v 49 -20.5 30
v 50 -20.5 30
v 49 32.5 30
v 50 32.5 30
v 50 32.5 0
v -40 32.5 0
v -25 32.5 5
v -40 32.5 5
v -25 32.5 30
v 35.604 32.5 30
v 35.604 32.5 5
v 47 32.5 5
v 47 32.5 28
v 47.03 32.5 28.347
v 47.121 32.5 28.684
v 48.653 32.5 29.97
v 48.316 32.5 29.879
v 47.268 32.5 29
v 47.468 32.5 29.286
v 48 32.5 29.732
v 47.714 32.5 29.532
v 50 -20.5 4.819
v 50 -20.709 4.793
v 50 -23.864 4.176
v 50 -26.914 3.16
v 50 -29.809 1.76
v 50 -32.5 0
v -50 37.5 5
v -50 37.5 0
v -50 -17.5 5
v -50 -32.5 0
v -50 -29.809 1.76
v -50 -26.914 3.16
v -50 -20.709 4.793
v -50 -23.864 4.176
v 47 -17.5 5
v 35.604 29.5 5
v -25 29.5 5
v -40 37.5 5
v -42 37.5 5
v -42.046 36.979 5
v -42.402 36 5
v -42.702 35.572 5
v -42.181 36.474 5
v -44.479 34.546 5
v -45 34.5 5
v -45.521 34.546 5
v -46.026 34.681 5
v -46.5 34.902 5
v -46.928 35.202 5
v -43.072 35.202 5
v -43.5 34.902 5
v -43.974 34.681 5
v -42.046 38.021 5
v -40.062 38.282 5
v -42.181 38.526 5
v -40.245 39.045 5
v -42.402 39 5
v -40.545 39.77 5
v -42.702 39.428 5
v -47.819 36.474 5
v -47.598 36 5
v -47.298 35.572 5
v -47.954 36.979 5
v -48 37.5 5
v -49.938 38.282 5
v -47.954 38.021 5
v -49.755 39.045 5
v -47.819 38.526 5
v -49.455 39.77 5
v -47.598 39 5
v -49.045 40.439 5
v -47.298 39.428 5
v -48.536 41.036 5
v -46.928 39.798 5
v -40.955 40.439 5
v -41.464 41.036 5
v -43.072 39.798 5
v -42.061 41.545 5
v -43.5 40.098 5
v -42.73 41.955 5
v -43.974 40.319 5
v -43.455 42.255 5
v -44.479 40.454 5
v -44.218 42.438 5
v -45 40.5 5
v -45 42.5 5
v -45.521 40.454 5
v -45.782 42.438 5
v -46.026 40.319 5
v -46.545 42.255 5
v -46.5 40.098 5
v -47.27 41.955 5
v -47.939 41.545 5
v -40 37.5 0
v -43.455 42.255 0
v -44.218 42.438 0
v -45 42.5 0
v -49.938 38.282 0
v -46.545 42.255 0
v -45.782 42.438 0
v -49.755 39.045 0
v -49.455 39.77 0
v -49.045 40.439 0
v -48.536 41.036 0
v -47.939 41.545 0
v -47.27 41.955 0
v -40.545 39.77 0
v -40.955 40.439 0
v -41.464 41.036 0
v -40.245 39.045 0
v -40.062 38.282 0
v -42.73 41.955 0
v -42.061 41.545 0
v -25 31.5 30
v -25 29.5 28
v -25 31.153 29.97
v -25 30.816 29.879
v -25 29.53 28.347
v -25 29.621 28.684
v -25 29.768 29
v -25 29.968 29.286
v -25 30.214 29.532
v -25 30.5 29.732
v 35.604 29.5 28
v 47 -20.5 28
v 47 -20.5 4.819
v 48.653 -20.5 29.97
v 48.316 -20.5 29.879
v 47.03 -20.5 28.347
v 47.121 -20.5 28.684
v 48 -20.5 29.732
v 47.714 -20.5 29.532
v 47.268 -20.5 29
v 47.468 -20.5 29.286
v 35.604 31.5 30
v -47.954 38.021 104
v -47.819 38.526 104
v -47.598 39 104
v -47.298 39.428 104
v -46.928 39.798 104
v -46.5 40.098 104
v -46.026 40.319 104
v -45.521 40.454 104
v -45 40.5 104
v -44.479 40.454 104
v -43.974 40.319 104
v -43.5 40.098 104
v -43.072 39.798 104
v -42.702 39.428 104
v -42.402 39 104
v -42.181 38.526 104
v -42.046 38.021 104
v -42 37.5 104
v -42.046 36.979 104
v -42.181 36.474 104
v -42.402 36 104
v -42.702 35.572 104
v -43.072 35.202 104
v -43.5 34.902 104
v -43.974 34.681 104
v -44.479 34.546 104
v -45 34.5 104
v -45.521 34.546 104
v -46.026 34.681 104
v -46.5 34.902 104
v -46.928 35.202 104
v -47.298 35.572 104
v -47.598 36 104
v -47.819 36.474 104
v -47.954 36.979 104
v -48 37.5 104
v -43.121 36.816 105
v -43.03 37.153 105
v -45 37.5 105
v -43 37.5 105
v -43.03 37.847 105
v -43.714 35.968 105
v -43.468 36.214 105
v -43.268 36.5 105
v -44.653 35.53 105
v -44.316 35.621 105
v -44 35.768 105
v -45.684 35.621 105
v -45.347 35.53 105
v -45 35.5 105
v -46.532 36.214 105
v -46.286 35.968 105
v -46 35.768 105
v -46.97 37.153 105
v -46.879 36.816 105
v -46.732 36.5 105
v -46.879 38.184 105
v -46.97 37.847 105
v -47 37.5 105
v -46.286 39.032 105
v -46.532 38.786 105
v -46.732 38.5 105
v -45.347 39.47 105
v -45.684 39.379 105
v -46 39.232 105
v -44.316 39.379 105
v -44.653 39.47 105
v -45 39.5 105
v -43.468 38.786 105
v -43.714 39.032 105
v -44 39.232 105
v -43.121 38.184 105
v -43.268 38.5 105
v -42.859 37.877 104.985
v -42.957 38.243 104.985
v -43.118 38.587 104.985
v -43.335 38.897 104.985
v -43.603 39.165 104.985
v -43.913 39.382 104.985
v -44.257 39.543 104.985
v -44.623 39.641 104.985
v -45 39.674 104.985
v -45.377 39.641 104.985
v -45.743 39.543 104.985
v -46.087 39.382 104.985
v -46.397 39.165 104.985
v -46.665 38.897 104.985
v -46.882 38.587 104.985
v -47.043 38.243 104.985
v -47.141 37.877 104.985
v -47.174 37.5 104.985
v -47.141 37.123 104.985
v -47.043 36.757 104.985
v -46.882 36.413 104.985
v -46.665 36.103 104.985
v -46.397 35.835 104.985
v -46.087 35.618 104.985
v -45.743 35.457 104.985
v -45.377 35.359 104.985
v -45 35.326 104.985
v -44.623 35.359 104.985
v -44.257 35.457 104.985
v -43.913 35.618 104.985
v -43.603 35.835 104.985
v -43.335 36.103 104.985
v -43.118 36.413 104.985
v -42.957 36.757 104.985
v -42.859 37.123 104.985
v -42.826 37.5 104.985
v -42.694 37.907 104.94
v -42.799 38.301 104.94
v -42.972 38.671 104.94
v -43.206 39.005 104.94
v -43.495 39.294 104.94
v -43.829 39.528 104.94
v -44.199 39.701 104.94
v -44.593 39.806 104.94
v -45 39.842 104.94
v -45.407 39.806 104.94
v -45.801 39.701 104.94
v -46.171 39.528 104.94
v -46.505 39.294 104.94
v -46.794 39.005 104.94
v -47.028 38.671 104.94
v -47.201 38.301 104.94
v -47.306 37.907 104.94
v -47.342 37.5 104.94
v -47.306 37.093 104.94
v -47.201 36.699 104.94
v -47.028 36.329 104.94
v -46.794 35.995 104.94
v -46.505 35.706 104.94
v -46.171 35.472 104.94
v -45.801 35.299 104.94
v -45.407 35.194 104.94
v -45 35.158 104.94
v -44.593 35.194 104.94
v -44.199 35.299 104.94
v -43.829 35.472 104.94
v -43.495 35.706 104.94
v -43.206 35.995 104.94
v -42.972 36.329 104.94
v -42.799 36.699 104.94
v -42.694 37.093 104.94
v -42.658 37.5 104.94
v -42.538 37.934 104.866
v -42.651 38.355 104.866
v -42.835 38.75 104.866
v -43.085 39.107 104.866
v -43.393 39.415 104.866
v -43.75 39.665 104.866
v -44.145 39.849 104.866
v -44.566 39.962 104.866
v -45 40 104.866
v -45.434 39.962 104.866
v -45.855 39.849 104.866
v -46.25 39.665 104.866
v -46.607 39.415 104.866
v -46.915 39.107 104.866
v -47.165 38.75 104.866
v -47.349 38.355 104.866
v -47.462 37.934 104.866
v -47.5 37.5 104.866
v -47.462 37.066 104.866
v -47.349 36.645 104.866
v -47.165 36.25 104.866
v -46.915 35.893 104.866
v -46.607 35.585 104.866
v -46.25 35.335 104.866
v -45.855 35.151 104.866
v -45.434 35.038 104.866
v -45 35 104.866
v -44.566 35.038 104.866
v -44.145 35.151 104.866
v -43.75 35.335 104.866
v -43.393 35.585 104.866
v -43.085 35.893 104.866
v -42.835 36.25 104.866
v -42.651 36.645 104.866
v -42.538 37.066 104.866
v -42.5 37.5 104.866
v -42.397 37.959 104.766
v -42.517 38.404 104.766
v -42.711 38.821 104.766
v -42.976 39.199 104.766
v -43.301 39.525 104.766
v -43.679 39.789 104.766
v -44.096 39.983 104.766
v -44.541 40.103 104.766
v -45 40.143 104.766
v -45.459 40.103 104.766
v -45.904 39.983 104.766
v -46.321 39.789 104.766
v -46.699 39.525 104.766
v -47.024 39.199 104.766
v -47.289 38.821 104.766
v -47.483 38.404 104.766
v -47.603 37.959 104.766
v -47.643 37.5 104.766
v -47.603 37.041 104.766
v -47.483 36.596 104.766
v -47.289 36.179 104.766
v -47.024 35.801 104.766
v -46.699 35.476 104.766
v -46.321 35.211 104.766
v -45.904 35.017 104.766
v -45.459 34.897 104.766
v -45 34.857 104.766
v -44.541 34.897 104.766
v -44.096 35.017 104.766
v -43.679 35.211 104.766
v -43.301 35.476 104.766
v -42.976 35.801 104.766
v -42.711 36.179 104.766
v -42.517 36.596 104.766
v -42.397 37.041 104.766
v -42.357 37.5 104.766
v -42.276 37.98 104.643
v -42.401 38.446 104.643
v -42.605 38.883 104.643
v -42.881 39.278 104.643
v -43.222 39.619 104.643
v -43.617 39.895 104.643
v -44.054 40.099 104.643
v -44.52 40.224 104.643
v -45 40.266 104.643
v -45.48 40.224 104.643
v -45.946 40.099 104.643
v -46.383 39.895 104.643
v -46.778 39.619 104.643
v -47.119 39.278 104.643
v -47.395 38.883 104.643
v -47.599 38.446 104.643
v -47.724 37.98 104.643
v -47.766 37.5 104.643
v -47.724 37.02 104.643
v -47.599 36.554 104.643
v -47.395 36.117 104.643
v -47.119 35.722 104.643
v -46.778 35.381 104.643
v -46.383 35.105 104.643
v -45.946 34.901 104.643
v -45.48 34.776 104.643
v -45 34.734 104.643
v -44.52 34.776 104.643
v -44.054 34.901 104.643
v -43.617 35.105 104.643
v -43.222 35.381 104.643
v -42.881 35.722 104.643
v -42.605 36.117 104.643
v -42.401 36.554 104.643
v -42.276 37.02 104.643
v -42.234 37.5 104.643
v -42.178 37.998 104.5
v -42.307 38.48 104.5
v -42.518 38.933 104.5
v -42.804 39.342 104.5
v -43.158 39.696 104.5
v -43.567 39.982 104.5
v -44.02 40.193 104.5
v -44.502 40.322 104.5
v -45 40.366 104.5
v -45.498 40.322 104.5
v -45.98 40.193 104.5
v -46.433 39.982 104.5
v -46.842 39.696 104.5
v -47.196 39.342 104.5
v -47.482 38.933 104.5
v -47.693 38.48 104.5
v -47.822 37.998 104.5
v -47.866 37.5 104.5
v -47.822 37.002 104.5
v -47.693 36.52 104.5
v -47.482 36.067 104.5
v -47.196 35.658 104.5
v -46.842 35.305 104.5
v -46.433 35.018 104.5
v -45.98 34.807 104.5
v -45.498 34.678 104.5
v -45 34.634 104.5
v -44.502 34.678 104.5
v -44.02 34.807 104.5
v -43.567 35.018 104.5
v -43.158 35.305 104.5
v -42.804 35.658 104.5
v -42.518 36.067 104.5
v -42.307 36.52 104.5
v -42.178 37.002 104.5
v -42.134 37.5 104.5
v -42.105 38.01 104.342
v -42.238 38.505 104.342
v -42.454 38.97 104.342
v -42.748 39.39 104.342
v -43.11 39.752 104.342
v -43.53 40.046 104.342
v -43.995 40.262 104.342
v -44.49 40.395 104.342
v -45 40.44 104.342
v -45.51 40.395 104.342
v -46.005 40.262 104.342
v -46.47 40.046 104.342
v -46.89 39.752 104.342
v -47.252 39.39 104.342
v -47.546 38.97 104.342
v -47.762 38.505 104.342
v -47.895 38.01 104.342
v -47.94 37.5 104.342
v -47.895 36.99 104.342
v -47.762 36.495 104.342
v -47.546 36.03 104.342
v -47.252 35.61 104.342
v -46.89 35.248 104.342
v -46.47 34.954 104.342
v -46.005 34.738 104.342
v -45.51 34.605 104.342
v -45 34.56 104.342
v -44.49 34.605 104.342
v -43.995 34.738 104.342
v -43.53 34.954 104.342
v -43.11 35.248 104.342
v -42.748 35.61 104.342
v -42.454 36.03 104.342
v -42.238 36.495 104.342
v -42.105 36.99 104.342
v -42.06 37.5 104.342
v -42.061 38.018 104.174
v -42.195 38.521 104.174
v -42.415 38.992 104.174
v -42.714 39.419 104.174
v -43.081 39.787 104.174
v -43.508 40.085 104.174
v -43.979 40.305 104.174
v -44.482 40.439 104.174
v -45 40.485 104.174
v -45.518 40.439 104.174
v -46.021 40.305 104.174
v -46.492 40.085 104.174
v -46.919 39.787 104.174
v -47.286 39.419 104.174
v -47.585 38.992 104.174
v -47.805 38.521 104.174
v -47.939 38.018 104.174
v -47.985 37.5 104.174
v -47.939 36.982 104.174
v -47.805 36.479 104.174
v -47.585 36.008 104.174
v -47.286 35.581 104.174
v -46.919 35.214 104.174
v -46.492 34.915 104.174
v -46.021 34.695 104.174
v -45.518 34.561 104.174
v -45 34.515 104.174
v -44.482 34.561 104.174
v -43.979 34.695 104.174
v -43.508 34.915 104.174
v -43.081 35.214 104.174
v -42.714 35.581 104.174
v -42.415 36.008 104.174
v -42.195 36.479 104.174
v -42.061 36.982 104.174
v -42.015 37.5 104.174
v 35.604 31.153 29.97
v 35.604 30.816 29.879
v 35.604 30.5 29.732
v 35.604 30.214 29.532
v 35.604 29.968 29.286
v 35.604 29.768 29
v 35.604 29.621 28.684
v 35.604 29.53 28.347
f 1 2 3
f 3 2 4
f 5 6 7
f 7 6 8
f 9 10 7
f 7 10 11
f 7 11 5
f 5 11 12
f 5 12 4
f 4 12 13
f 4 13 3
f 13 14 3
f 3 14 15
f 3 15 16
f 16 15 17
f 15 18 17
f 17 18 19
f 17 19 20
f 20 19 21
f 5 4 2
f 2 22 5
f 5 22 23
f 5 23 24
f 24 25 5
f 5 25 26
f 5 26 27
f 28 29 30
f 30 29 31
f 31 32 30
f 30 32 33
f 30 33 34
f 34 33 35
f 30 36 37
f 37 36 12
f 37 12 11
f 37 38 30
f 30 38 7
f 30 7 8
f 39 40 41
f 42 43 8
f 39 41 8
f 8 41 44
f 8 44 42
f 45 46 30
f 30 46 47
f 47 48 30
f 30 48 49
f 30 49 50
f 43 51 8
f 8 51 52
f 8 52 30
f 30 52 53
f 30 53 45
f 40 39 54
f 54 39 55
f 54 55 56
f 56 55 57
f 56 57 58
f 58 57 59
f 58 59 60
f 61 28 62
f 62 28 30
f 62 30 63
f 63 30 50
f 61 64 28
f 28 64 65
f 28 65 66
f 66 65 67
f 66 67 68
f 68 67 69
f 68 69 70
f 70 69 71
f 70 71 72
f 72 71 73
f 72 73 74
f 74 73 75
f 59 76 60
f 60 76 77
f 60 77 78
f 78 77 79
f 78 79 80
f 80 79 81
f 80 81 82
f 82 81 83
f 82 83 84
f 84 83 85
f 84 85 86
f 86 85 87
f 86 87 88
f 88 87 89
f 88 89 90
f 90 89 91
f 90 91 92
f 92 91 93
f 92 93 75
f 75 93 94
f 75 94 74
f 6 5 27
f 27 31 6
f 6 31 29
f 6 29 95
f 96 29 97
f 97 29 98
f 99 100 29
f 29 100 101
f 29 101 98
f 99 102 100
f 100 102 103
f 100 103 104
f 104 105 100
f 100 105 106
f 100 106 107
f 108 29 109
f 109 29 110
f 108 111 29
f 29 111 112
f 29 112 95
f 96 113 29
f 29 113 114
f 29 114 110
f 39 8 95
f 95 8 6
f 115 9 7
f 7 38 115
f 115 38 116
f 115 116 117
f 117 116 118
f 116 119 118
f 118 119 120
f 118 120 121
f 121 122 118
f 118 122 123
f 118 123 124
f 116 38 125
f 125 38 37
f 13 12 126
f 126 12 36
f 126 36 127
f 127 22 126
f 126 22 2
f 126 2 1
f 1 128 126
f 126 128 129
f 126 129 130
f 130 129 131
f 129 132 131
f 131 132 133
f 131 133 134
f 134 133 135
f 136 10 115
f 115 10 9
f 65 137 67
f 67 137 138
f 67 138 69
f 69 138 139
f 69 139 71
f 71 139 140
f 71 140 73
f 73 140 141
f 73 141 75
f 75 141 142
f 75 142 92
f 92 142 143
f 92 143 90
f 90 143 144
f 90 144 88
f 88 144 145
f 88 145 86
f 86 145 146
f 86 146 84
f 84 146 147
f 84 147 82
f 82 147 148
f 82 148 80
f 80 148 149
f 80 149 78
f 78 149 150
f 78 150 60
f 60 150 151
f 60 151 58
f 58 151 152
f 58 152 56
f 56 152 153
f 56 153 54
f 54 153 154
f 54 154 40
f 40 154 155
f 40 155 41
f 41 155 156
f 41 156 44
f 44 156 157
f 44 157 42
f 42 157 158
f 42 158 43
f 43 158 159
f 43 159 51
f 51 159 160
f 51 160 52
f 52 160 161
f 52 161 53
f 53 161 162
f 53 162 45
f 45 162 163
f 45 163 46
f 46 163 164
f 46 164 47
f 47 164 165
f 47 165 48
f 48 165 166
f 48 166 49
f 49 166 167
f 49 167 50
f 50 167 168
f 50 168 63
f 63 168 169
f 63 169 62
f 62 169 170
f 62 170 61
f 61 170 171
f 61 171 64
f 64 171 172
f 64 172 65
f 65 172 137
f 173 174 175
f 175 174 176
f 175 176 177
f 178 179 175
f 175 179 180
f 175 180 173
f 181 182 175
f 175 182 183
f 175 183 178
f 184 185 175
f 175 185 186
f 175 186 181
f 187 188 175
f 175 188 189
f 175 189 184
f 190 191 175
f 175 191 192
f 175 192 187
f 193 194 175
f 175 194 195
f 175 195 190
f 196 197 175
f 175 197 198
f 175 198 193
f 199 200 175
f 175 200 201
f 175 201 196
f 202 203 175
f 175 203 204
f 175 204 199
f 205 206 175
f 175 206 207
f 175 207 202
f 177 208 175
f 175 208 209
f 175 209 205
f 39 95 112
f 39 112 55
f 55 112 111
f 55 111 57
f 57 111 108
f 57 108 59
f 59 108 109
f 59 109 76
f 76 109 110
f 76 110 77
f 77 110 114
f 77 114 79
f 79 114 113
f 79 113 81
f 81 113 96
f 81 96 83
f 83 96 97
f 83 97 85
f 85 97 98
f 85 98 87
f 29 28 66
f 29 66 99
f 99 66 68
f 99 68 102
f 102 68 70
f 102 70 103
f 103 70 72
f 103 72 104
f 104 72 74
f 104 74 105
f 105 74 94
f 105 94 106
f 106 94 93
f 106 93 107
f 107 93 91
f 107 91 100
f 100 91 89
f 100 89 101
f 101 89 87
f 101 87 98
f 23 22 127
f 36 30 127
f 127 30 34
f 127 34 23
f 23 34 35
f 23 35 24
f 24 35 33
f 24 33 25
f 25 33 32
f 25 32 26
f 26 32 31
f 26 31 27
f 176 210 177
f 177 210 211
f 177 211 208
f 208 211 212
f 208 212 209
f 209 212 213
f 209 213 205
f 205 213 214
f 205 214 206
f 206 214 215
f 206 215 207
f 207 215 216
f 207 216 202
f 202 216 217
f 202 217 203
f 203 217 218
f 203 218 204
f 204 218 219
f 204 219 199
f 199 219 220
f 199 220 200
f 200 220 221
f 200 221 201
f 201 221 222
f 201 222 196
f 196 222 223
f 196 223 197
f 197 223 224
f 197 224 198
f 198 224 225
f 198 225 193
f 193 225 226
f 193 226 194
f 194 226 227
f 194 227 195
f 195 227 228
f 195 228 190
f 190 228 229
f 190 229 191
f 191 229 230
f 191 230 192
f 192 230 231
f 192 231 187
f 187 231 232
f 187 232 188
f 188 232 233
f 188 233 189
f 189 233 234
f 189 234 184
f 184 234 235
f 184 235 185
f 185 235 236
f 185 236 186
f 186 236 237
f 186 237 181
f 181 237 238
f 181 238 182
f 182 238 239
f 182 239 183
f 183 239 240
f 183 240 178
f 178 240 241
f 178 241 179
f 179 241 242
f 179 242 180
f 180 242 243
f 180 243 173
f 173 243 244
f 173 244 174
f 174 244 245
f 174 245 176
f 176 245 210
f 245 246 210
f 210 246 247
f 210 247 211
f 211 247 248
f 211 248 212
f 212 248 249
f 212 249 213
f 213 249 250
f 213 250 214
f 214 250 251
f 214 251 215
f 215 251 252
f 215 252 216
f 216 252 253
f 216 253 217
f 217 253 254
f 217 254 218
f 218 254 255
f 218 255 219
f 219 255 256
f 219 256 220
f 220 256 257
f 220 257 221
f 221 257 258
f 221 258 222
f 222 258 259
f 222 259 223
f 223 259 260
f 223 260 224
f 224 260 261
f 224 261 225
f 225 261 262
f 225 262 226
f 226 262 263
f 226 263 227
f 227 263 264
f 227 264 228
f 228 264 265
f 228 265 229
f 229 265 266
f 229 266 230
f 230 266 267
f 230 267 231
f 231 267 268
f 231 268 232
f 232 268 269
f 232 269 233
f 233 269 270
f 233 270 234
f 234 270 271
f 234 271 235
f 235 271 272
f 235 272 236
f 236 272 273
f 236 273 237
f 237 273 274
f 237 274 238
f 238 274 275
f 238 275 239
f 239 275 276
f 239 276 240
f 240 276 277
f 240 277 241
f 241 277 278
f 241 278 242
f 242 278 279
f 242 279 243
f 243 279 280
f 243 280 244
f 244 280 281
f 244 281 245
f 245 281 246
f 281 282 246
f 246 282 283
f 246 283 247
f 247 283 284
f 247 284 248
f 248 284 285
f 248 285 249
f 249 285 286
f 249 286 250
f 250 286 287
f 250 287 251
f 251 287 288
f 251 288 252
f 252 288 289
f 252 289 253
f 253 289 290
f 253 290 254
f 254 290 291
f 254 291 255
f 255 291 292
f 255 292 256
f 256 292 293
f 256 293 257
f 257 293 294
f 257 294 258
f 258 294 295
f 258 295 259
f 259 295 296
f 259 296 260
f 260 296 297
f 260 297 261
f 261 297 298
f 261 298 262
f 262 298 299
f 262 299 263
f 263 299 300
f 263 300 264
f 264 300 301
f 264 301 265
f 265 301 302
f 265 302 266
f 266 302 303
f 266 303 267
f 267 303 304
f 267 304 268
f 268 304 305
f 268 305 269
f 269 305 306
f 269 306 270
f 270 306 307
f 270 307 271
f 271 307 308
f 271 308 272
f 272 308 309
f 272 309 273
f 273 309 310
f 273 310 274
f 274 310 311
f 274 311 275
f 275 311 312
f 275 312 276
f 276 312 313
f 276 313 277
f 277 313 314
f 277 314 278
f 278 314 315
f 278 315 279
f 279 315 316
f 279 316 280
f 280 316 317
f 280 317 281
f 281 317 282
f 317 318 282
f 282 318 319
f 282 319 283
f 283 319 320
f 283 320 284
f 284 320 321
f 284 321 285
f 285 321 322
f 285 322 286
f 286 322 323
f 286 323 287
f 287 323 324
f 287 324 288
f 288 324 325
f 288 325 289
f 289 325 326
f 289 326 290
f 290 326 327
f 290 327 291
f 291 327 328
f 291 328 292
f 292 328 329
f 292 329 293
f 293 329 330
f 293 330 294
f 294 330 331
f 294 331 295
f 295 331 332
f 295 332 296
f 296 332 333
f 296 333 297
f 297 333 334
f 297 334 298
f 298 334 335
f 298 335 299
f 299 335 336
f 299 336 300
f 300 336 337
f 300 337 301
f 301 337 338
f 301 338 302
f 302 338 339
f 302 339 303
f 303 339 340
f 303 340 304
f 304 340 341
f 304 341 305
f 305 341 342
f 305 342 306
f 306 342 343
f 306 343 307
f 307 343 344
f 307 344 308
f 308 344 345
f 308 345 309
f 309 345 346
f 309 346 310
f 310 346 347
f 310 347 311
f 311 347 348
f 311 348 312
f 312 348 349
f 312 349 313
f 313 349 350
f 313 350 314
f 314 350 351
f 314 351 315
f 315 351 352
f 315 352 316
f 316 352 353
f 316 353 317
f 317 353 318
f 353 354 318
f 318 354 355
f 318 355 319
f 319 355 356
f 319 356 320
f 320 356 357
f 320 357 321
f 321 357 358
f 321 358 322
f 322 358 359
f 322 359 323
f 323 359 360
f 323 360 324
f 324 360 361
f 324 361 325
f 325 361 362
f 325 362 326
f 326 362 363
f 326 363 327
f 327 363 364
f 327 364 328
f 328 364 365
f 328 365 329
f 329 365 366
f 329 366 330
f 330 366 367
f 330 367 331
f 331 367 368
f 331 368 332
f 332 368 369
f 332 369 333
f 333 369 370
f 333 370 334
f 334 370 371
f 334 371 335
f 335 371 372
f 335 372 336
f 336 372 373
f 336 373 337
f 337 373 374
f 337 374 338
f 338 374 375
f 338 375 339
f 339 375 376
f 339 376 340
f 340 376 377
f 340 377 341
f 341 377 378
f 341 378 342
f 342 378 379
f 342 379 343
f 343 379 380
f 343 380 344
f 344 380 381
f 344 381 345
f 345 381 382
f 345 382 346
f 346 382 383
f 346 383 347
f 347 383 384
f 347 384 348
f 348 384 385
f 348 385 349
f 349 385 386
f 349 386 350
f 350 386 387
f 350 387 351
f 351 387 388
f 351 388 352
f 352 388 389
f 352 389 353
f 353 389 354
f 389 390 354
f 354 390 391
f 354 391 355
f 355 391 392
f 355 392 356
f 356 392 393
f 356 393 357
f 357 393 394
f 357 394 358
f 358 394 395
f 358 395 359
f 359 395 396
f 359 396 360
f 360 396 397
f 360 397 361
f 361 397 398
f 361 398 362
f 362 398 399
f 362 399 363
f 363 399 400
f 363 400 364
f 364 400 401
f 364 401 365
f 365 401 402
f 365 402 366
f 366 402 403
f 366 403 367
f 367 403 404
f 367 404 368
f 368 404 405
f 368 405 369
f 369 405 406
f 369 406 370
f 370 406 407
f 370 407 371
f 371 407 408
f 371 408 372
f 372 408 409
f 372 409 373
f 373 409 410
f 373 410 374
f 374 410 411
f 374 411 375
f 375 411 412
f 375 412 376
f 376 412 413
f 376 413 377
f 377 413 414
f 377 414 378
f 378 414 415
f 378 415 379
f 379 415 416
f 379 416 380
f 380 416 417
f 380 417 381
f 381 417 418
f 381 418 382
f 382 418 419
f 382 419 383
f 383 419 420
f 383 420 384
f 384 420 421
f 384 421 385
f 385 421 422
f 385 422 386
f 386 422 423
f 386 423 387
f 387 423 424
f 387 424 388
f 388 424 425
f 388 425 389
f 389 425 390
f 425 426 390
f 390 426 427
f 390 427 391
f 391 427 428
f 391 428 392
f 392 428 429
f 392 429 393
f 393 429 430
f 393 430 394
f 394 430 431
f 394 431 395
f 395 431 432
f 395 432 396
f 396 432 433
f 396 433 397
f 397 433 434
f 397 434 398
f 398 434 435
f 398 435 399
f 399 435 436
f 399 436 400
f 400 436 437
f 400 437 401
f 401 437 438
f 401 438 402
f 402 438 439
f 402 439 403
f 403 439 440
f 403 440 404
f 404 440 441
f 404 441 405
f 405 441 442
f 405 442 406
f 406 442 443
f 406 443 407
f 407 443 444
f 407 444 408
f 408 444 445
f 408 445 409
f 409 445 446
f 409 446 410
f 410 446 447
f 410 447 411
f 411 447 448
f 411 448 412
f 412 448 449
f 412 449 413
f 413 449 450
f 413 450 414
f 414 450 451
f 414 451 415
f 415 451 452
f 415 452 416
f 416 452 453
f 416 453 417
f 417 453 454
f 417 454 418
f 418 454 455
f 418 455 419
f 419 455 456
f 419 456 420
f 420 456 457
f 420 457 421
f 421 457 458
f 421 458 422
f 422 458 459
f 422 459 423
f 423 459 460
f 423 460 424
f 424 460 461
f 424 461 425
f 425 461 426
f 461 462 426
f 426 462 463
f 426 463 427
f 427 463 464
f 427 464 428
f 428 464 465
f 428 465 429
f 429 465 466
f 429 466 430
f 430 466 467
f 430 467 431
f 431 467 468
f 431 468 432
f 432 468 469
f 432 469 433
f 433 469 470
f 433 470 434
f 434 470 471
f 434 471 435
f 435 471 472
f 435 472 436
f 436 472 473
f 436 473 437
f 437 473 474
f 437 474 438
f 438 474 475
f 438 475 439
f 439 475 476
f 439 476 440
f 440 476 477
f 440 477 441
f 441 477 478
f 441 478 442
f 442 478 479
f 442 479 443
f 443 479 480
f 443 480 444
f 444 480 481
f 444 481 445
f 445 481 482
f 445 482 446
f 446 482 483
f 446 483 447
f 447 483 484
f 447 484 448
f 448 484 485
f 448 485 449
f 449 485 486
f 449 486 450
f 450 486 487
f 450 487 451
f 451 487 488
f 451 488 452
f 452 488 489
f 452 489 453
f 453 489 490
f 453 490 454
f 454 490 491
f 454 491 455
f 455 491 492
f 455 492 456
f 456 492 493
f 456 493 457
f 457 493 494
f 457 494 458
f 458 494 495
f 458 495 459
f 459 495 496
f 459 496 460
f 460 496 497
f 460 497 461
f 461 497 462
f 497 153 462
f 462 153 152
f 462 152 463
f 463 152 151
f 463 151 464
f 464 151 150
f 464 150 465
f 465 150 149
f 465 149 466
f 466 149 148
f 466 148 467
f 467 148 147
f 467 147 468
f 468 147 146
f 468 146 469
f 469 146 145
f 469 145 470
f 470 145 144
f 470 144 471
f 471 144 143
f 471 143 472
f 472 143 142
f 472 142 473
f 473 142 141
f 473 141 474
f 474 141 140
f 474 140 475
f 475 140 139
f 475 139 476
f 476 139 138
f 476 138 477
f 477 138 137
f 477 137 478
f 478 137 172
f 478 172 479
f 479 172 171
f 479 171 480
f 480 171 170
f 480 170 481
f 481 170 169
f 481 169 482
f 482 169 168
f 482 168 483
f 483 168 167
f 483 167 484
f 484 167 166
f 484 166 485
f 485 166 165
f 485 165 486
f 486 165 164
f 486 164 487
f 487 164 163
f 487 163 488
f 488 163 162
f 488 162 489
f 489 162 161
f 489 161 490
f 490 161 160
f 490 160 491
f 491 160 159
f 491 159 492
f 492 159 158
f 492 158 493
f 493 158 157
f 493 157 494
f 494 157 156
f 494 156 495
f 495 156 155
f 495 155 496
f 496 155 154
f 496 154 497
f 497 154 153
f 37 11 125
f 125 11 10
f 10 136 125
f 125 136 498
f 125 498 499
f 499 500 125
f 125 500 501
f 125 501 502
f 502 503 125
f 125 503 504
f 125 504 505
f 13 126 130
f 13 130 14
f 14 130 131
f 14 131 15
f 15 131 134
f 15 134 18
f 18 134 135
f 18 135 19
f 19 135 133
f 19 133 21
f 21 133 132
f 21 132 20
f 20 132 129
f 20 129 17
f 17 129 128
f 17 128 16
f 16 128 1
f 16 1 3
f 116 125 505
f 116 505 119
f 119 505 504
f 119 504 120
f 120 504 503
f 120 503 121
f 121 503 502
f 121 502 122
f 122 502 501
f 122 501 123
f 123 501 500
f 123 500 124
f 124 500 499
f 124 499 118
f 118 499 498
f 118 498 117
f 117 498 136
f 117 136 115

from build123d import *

# Parameters (mm, degrees)
SKETCH1_W           = 100
SKETCH1_H           = 65
BOSS_EXTRUDE2_DEPTH = 5
BOSS_EXTRUDE3_DEPTH = 10
BOSS_EXTRUDE4_DEPTH = 25
BOSS_EXTRUDE5_DEPTH = 100
FILLET1_R           = 5
FILLET2_R           = 25
FILLET5_R           = 1
SKETCH7_W           = 11.396244365786963
SKETCH7_H           = 3.3746398880239497
CUT_EXTRUDE2_DEPTH  = 25
FILLET7_R           = 2


# Some blends are built 0.0001 mm under size
with BuildPart() as part:
    # Sketch1 → Boss-Extrude2 (new body)
    with BuildSketch(Plane.XY):
        Rectangle(SKETCH1_W, SKETCH1_H)
    extrude(amount=BOSS_EXTRUDE2_DEPTH)

    # Sketch3 → Boss-Extrude3 (add)
    with BuildSketch(Plane(origin=(0, 32.499999999999986, 0), x_dir=(1, 0, 0), z_dir=(0, 1, 0))):
        Polygon((-50.00000000000001, -5), (-40.00000000000001, -5), (-40, 0), (-50.00000000000001, 0), align=None)
    extrude(amount=BOSS_EXTRUDE3_DEPTH)

    # Sketch4 → Boss-Extrude4 (add)
    with BuildSketch(Plane.XY.offset(5)):
        Polygon((49.99999999999999, 32.499999999999986), (50, -20.50000000000001), (47, -20.500000000000014), (46.99999999999999, 29.49999999999999), (-25, 29.49999999999999), (-25, 32.499999999999986), align=None)
    extrude(amount=BOSS_EXTRUDE4_DEPTH)

    # Sketch5 → Boss-Extrude5 (add)
    with BuildSketch(Plane.XY.offset(5)):
        with BuildLine():
            ThreePointArc((-48.000000000000014, 37.49999999999999), (-45.000000000000014, 34.49999999999999), (-42.000000000000014, 37.49999999999999))
            Line((-42.000000000000014, 37.49999999999999), (-45.000000000000014, 37.49999999999999))
            Line((-45.000000000000014, 37.49999999999999), (-48.000000000000014, 37.49999999999999))
        make_face()
        with BuildLine():
            Line((-45.000000000000014, 37.49999999999999), (-42.000000000000014, 37.49999999999999))
            ThreePointArc((-42.000000000000014, 37.49999999999999), (-42.87867965644041, 39.621320343559674), (-45.00000000000013, 40.49999999999999))
            Line((-45.000000000000014, 40.49999999999999), (-45.000000000000014, 37.49999999999999))
        make_face()
        with BuildLine():
            Line((-48.000000000000014, 37.49999999999999), (-45.000000000000014, 37.49999999999999))
            Line((-45.000000000000014, 37.49999999999999), (-45.000000000000014, 40.49999999999999))
            ThreePointArc((-45.00000000000013, 40.49999999999999), (-47.121320343559695, 39.621320343559596), (-48.000000000000014, 37.49999999999999))
        make_face()
    extrude(amount=BOSS_EXTRUDE5_DEPTH)

    # Fillet1
    fillet1_edges = [part.edges().sort_by_distance(p)[0] for p in [
        (-50.00000000000001, 42.499999999999986, 2.5),
        (-40, 42.499999999999986, 2.5),
    ]]
    fillet(fillet1_edges, radius=FILLET1_R - 0.0001)  # a hair under: the kernel refuses the full size

    # Fillet2
    # the kernel refuses this fillet: 25 mm, written as the material it takes off along each edge
    with BuildSketch(Plane(origin=(-87.50000000000392, -32.500000000000014, 5), x_dir=(0, 1.1369e-13, -1), z_dir=(1, 0, 0))) as fillet2_piece_1_section:
        with BuildLine():
            CenterArc((25.000000000001705, 14.999999999998728), FILLET2_R, 179.9999999999935, 36.86989764584689)
            Line((1.7053e-12, 15.00000000000157), (0, 0))
            Line((0, 0), (5.000000000000753, 0))
        make_face()
    fillet2_piece_1 = extrude(amount=175.00000000000784, mode=Mode.PRIVATE)
    fillet2_piece_1 = split(fillet2_piece_1, bisect_by=Plane(origin=(47, -26.83563604767285, 3.245395234010585), z_dir=(-1, -1.4e-16, 0)), keep=Keep.TOP, mode=Mode.PRIVATE)
    add(fillet2_piece_1, mode=Mode.SUBTRACT)
    with BuildSketch(Plane(origin=(-87.50000000000392, -32.500000000000014, 5), x_dir=(0, 1.1369e-13, -1), z_dir=(1, 0, 0))) as fillet2_piece_2_section:
        with BuildLine():
            CenterArc((25.000000000001705, 14.999999999998728), FILLET2_R, 179.9999999999935, 36.86989764584689)
            Line((1.7053e-12, 15.00000000000157), (0, 0))
            Line((0, 0), (5.000000000000753, 0))
        make_face()
    fillet2_piece_2 = extrude(amount=175.00000000000784, mode=Mode.PRIVATE)
    fillet2_piece_2 = split(fillet2_piece_2, bisect_by=Plane(origin=(48.49999999999999, -20.500000000000014, 3.245395234010585), z_dir=(1.18e-15, -1, 0)), keep=Keep.TOP, mode=Mode.PRIVATE)
    add(fillet2_piece_2, mode=Mode.SUBTRACT)

    # Fillet5
    fillet5_edges = [part.edges().sort_by_distance(p)[0] for p in [
        (-48.000000000000014, 37.49999999999999, 105),
    ]]
    fillet(fillet5_edges, radius=FILLET5_R)

    # Sketch7 → Cut-Extrude2 (cut)
    with BuildSketch(Plane.XY.offset(30.000000000000004)):
        with Locations((41.301877817106515, 31.187319944011968)):
            Rectangle(SKETCH7_W, SKETCH7_H)
    extrude(amount=-CUT_EXTRUDE2_DEPTH, mode=Mode.SUBTRACT)

    # Fillet7
    fillet7_edges = [part.edges().sort_by_distance(p)[0] for p in [
        (47, 5.999999999999986, 30),
        (5.301877817106508, 29.49999999999999, 30),
    ]]
    fillet(fillet7_edges, radius=FILLET7_R)


solid = part.part
